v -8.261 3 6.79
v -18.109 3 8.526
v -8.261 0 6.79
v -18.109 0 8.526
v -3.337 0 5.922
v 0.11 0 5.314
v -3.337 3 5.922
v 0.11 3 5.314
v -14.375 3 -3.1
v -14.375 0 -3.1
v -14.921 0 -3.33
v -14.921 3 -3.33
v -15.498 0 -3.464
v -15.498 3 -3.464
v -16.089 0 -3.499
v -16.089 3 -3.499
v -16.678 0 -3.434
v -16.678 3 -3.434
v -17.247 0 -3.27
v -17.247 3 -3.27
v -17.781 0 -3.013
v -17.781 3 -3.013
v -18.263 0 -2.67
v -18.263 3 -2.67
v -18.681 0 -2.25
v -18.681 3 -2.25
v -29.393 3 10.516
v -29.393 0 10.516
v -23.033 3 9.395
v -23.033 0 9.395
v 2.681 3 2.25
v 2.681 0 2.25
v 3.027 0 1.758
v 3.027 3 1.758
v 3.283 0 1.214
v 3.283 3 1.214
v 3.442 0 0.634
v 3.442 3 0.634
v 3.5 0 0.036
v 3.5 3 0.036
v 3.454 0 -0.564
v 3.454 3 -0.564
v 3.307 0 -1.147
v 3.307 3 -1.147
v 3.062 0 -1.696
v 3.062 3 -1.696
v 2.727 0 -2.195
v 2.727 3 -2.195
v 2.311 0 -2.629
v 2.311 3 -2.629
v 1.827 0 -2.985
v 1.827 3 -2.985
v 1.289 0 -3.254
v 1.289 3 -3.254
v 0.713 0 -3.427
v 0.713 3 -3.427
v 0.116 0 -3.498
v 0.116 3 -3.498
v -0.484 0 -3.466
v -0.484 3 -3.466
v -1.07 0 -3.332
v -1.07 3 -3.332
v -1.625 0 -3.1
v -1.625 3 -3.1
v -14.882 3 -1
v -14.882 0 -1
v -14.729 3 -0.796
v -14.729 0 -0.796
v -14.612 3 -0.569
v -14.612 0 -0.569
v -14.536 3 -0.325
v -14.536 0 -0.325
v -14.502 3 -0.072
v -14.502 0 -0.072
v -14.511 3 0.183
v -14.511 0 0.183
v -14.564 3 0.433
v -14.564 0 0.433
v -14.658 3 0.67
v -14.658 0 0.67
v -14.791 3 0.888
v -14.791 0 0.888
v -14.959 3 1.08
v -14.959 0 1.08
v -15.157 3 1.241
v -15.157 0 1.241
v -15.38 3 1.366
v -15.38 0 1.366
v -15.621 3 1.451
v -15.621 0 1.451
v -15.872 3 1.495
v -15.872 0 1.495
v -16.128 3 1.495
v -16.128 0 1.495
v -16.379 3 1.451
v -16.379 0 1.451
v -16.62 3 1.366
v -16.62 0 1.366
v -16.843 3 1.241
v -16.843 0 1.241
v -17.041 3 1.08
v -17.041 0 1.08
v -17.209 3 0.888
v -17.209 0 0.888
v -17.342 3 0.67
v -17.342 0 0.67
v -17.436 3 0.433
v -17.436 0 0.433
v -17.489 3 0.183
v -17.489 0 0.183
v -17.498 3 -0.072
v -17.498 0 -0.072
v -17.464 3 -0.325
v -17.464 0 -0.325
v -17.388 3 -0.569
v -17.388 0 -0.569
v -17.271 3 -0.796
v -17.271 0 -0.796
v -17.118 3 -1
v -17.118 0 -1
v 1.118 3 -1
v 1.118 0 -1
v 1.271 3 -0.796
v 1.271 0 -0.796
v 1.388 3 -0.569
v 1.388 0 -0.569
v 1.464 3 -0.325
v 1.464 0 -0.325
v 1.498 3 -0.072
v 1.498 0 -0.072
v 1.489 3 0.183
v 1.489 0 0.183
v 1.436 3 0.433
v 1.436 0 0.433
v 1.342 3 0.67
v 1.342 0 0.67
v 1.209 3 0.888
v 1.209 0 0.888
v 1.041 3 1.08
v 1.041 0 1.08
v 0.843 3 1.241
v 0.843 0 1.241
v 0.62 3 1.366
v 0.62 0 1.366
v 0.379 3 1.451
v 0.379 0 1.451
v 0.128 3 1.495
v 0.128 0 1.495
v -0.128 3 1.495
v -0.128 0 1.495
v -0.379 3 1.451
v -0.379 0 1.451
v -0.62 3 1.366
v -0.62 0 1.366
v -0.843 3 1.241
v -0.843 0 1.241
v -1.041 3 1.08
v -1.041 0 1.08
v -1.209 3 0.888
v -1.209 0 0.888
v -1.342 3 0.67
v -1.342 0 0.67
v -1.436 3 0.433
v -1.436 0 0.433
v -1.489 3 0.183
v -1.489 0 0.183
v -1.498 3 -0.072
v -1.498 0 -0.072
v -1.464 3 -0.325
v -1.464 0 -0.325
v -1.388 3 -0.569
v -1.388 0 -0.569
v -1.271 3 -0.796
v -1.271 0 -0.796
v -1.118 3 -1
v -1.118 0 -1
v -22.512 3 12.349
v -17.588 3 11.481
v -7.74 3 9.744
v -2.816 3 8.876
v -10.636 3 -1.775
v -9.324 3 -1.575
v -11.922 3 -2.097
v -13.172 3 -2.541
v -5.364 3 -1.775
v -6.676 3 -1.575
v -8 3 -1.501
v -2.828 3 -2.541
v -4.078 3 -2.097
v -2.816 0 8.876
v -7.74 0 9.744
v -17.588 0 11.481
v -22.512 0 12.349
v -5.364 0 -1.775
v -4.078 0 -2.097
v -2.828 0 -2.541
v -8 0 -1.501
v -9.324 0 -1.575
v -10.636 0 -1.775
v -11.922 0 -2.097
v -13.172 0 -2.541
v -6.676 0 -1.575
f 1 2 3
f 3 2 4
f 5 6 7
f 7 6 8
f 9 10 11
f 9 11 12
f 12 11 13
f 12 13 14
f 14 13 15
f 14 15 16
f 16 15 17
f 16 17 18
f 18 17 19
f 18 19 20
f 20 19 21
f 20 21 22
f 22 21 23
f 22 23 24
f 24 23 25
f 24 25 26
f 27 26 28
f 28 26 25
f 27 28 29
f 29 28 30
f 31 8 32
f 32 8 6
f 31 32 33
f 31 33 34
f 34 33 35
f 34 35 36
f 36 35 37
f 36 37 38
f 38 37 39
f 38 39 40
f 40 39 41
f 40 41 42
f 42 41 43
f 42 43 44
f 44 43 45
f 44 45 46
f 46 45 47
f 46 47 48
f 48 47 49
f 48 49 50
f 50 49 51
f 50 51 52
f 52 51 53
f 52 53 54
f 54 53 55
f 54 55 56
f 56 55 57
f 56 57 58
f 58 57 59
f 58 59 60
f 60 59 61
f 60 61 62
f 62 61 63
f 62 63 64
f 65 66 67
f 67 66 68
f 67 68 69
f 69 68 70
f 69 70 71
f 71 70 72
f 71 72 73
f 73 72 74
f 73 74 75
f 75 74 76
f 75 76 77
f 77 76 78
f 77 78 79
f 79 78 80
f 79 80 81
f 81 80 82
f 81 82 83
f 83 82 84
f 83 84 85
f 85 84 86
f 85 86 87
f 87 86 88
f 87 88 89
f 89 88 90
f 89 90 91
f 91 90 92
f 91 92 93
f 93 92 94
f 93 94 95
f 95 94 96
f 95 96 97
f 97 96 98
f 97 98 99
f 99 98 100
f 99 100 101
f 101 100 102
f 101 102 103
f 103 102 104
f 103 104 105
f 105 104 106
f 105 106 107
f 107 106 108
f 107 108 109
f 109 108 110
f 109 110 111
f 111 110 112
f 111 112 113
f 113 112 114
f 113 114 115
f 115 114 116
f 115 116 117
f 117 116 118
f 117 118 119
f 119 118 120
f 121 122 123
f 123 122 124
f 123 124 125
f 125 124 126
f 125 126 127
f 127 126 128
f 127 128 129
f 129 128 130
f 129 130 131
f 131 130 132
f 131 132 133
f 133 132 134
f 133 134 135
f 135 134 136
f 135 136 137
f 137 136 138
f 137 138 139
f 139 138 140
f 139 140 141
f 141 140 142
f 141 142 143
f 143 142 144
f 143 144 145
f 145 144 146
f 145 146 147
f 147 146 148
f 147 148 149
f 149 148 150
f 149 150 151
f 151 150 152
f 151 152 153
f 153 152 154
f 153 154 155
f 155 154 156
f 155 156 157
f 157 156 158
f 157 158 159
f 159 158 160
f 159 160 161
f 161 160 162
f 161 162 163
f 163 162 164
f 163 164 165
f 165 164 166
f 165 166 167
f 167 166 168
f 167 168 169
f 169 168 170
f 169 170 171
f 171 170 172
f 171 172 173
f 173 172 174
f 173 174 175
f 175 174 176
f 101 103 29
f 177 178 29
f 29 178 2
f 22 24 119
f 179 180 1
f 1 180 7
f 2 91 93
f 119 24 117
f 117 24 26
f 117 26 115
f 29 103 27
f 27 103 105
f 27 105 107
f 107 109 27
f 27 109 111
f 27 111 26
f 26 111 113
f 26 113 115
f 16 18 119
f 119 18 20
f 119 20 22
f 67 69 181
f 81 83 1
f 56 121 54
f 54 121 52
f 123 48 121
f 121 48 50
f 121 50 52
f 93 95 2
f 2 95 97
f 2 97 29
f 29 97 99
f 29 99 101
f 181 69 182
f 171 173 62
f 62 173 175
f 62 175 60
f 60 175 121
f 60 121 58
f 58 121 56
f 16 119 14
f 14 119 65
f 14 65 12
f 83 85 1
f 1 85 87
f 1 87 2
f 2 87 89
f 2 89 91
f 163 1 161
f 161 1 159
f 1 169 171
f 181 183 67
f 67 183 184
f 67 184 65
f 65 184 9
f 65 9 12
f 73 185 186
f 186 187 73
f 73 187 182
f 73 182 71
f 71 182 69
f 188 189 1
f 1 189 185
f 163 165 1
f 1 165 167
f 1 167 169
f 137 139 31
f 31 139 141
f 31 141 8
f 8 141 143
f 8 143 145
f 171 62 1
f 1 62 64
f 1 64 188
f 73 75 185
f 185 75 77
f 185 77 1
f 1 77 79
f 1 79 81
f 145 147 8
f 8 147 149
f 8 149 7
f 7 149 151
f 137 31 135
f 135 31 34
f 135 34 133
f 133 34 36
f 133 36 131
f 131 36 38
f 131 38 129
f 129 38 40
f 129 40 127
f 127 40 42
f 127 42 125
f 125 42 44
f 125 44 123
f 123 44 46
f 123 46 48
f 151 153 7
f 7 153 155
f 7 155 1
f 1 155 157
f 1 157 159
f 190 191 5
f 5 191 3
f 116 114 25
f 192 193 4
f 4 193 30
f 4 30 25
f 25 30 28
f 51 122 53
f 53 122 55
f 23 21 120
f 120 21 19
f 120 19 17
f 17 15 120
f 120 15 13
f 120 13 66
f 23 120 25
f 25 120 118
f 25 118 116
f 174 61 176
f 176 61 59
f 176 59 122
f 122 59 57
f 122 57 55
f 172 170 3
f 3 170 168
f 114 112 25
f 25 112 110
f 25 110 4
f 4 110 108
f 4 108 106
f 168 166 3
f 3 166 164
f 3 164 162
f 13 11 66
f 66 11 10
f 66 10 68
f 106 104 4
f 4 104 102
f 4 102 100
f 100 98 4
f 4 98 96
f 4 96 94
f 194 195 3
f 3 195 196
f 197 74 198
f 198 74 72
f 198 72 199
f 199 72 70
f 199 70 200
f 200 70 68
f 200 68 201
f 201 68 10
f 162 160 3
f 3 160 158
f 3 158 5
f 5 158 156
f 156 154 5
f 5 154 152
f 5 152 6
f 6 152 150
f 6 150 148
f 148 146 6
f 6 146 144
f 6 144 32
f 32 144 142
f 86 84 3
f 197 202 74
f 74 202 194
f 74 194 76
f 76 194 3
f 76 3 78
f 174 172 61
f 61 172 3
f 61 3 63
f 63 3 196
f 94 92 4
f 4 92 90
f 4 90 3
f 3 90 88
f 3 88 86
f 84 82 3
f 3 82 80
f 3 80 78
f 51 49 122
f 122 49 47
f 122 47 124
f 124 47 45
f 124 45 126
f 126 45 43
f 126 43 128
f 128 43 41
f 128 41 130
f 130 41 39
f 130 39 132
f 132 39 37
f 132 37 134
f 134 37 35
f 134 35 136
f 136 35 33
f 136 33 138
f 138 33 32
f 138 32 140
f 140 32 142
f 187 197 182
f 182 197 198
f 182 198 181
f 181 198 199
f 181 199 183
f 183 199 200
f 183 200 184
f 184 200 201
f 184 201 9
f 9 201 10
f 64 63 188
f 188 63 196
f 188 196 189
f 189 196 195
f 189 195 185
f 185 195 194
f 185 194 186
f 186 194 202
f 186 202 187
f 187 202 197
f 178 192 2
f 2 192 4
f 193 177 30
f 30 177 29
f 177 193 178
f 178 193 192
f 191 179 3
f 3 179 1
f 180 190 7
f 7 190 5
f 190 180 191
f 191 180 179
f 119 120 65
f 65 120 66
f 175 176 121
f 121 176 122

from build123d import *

# Parameters (mm, degrees)
SKETCH_2_R      = 3.5
SKETCH_2_R_2    = 1.5
EXTRUDE_1_DEPTH = 3
FILLET_1_R      = 14
SKETCH_3_W      = 5
SKETCH_3_H      = 3
EXTRUDE_2_DEPTH = 3
EXTRUDE_4_DEPTH = 3


with BuildPart() as part:
    # 草图2 → 凸台-拉伸1 (new body)
    # profile 1 of 3: a face of its own
    with BuildSketch(Plane(origin=(0, 0, 0), x_dir=(1, 0, 0), z_dir=(0, 1, 0))):
        with Locations((-16, 0)):
            Circle(SKETCH_2_R)
        with Locations(Location((-16, 0, 0), (0, 0, 270))):
            Circle(SKETCH_2_R_2, mode=Mode.SUBTRACT)
    # profile 2 of 3: a face of its own
    with BuildSketch(Plane(origin=(0, 0, 0), x_dir=(1, 0, 0), z_dir=(0, 1, 0))):
        Circle(SKETCH_2_R)
        with Locations(Location((0, 0, 0), (0, 0, 270))):
            Circle(SKETCH_2_R_2, mode=Mode.SUBTRACT)
    # profile 3 of 3: a face of its own
    with BuildSketch(Plane(origin=(0, 0, 0), x_dir=(1, 0, 0), z_dir=(0, 1, 0))):
        with BuildLine():
            Line((-3.16227766, 1.5), (-12.83772234, 1.5))
            ThreePointArc((-12.83772234, 1.5), (-12.585474278, 0.768774411), (-12.5, 0))
            ThreePointArc((-12.5, 0), (-17.197070502, -3.288924173), (-18.681155551, 2.249756634))
            Line((-18.681155551, 2.249756634), (-29.392987934, -10.516108092))
            Line((-29.392987934, -10.516108092), (0.110005112, -5.313934406))
            Line((0.110005112, -5.313934406), (2.681155551, -2.249756634))
            ThreePointArc((2.681155551, -2.249756634), (-1.890248218, -2.94566829), (-3.16227766, 1.5))
        make_face()
    extrude(amount=EXTRUDE_1_DEPTH)

    # 圆角1
    # the kernel refuses this fillet: 14 mm, written as the material it adds along each edge
    with BuildSketch(Plane(origin=(-3.16227766, 0, -1.5), x_dir=(-1, 0, 0), z_dir=(0, 1, 0))) as fillet_1_piece_1:
        with BuildLine():
            CenterArc((4.961760744, -14), FILLET_1_R, 90, 27.660449899)
            ThreePointArc((-1.537469979, -1.6), (-0.638580667, -0.925067728), (0, 0))
            Line((0, 0), (4.961760744, 0))
        make_face()
    extrude(amount=3)
    with BuildSketch(Plane(origin=(-12.83772234, 0, -1.5), x_dir=(-0.6928764936482941, 0, -0.721056283898591), z_dir=(0, 1, 0))) as fillet_1_piece_2:
        with BuildLine():
            CenterArc((6.656900588, -13.277979675), FILLET_1_R, 108.481308288, 27.660449899)
            Line((-3.437887387, -3.577708764), (0, 0))
            ThreePointArc((0, 0), (1.109483431, -0.180505081), (2.218966863, 0))
        make_face()
    extrude(amount=3)

    # 草图3 → 凸台-拉伸2 (add)
    with BuildSketch(Plane(origin=(0.912053364, 0, 5.17251166), x_dir=(0.9848077530122087, 0, -0.17364817766692722), z_dir=(0.17364817766692722, 0, 0.9848077530122087))):
        with Locations((-21.814421139, 1.5)):
            Rectangle(SKETCH_3_W, SKETCH_3_H)
        with Locations((-6.814421139, 1.5)):
            Rectangle(SKETCH_3_W, SKETCH_3_H)
    extrude(amount=EXTRUDE_2_DEPTH)

    # 草图5 → 凸台-拉伸4 (add)
    with BuildSketch(Plane.XZ):
        with BuildLine():
            ThreePointArc((-1.118033989, -1), (0, -1.5), (1.118033989, -1))
            Line((1.118033989, -1), (-1.118033989, -1))
        make_face()
        with BuildLine():
            ThreePointArc((-17.118033989, -1), (-16, -1.5), (-14.881966011, -1))
            Line((-14.881966011, -1), (-17.118033989, -1))
        make_face()
    extrude(amount=-EXTRUDE_4_DEPTH)


solid = part.part
